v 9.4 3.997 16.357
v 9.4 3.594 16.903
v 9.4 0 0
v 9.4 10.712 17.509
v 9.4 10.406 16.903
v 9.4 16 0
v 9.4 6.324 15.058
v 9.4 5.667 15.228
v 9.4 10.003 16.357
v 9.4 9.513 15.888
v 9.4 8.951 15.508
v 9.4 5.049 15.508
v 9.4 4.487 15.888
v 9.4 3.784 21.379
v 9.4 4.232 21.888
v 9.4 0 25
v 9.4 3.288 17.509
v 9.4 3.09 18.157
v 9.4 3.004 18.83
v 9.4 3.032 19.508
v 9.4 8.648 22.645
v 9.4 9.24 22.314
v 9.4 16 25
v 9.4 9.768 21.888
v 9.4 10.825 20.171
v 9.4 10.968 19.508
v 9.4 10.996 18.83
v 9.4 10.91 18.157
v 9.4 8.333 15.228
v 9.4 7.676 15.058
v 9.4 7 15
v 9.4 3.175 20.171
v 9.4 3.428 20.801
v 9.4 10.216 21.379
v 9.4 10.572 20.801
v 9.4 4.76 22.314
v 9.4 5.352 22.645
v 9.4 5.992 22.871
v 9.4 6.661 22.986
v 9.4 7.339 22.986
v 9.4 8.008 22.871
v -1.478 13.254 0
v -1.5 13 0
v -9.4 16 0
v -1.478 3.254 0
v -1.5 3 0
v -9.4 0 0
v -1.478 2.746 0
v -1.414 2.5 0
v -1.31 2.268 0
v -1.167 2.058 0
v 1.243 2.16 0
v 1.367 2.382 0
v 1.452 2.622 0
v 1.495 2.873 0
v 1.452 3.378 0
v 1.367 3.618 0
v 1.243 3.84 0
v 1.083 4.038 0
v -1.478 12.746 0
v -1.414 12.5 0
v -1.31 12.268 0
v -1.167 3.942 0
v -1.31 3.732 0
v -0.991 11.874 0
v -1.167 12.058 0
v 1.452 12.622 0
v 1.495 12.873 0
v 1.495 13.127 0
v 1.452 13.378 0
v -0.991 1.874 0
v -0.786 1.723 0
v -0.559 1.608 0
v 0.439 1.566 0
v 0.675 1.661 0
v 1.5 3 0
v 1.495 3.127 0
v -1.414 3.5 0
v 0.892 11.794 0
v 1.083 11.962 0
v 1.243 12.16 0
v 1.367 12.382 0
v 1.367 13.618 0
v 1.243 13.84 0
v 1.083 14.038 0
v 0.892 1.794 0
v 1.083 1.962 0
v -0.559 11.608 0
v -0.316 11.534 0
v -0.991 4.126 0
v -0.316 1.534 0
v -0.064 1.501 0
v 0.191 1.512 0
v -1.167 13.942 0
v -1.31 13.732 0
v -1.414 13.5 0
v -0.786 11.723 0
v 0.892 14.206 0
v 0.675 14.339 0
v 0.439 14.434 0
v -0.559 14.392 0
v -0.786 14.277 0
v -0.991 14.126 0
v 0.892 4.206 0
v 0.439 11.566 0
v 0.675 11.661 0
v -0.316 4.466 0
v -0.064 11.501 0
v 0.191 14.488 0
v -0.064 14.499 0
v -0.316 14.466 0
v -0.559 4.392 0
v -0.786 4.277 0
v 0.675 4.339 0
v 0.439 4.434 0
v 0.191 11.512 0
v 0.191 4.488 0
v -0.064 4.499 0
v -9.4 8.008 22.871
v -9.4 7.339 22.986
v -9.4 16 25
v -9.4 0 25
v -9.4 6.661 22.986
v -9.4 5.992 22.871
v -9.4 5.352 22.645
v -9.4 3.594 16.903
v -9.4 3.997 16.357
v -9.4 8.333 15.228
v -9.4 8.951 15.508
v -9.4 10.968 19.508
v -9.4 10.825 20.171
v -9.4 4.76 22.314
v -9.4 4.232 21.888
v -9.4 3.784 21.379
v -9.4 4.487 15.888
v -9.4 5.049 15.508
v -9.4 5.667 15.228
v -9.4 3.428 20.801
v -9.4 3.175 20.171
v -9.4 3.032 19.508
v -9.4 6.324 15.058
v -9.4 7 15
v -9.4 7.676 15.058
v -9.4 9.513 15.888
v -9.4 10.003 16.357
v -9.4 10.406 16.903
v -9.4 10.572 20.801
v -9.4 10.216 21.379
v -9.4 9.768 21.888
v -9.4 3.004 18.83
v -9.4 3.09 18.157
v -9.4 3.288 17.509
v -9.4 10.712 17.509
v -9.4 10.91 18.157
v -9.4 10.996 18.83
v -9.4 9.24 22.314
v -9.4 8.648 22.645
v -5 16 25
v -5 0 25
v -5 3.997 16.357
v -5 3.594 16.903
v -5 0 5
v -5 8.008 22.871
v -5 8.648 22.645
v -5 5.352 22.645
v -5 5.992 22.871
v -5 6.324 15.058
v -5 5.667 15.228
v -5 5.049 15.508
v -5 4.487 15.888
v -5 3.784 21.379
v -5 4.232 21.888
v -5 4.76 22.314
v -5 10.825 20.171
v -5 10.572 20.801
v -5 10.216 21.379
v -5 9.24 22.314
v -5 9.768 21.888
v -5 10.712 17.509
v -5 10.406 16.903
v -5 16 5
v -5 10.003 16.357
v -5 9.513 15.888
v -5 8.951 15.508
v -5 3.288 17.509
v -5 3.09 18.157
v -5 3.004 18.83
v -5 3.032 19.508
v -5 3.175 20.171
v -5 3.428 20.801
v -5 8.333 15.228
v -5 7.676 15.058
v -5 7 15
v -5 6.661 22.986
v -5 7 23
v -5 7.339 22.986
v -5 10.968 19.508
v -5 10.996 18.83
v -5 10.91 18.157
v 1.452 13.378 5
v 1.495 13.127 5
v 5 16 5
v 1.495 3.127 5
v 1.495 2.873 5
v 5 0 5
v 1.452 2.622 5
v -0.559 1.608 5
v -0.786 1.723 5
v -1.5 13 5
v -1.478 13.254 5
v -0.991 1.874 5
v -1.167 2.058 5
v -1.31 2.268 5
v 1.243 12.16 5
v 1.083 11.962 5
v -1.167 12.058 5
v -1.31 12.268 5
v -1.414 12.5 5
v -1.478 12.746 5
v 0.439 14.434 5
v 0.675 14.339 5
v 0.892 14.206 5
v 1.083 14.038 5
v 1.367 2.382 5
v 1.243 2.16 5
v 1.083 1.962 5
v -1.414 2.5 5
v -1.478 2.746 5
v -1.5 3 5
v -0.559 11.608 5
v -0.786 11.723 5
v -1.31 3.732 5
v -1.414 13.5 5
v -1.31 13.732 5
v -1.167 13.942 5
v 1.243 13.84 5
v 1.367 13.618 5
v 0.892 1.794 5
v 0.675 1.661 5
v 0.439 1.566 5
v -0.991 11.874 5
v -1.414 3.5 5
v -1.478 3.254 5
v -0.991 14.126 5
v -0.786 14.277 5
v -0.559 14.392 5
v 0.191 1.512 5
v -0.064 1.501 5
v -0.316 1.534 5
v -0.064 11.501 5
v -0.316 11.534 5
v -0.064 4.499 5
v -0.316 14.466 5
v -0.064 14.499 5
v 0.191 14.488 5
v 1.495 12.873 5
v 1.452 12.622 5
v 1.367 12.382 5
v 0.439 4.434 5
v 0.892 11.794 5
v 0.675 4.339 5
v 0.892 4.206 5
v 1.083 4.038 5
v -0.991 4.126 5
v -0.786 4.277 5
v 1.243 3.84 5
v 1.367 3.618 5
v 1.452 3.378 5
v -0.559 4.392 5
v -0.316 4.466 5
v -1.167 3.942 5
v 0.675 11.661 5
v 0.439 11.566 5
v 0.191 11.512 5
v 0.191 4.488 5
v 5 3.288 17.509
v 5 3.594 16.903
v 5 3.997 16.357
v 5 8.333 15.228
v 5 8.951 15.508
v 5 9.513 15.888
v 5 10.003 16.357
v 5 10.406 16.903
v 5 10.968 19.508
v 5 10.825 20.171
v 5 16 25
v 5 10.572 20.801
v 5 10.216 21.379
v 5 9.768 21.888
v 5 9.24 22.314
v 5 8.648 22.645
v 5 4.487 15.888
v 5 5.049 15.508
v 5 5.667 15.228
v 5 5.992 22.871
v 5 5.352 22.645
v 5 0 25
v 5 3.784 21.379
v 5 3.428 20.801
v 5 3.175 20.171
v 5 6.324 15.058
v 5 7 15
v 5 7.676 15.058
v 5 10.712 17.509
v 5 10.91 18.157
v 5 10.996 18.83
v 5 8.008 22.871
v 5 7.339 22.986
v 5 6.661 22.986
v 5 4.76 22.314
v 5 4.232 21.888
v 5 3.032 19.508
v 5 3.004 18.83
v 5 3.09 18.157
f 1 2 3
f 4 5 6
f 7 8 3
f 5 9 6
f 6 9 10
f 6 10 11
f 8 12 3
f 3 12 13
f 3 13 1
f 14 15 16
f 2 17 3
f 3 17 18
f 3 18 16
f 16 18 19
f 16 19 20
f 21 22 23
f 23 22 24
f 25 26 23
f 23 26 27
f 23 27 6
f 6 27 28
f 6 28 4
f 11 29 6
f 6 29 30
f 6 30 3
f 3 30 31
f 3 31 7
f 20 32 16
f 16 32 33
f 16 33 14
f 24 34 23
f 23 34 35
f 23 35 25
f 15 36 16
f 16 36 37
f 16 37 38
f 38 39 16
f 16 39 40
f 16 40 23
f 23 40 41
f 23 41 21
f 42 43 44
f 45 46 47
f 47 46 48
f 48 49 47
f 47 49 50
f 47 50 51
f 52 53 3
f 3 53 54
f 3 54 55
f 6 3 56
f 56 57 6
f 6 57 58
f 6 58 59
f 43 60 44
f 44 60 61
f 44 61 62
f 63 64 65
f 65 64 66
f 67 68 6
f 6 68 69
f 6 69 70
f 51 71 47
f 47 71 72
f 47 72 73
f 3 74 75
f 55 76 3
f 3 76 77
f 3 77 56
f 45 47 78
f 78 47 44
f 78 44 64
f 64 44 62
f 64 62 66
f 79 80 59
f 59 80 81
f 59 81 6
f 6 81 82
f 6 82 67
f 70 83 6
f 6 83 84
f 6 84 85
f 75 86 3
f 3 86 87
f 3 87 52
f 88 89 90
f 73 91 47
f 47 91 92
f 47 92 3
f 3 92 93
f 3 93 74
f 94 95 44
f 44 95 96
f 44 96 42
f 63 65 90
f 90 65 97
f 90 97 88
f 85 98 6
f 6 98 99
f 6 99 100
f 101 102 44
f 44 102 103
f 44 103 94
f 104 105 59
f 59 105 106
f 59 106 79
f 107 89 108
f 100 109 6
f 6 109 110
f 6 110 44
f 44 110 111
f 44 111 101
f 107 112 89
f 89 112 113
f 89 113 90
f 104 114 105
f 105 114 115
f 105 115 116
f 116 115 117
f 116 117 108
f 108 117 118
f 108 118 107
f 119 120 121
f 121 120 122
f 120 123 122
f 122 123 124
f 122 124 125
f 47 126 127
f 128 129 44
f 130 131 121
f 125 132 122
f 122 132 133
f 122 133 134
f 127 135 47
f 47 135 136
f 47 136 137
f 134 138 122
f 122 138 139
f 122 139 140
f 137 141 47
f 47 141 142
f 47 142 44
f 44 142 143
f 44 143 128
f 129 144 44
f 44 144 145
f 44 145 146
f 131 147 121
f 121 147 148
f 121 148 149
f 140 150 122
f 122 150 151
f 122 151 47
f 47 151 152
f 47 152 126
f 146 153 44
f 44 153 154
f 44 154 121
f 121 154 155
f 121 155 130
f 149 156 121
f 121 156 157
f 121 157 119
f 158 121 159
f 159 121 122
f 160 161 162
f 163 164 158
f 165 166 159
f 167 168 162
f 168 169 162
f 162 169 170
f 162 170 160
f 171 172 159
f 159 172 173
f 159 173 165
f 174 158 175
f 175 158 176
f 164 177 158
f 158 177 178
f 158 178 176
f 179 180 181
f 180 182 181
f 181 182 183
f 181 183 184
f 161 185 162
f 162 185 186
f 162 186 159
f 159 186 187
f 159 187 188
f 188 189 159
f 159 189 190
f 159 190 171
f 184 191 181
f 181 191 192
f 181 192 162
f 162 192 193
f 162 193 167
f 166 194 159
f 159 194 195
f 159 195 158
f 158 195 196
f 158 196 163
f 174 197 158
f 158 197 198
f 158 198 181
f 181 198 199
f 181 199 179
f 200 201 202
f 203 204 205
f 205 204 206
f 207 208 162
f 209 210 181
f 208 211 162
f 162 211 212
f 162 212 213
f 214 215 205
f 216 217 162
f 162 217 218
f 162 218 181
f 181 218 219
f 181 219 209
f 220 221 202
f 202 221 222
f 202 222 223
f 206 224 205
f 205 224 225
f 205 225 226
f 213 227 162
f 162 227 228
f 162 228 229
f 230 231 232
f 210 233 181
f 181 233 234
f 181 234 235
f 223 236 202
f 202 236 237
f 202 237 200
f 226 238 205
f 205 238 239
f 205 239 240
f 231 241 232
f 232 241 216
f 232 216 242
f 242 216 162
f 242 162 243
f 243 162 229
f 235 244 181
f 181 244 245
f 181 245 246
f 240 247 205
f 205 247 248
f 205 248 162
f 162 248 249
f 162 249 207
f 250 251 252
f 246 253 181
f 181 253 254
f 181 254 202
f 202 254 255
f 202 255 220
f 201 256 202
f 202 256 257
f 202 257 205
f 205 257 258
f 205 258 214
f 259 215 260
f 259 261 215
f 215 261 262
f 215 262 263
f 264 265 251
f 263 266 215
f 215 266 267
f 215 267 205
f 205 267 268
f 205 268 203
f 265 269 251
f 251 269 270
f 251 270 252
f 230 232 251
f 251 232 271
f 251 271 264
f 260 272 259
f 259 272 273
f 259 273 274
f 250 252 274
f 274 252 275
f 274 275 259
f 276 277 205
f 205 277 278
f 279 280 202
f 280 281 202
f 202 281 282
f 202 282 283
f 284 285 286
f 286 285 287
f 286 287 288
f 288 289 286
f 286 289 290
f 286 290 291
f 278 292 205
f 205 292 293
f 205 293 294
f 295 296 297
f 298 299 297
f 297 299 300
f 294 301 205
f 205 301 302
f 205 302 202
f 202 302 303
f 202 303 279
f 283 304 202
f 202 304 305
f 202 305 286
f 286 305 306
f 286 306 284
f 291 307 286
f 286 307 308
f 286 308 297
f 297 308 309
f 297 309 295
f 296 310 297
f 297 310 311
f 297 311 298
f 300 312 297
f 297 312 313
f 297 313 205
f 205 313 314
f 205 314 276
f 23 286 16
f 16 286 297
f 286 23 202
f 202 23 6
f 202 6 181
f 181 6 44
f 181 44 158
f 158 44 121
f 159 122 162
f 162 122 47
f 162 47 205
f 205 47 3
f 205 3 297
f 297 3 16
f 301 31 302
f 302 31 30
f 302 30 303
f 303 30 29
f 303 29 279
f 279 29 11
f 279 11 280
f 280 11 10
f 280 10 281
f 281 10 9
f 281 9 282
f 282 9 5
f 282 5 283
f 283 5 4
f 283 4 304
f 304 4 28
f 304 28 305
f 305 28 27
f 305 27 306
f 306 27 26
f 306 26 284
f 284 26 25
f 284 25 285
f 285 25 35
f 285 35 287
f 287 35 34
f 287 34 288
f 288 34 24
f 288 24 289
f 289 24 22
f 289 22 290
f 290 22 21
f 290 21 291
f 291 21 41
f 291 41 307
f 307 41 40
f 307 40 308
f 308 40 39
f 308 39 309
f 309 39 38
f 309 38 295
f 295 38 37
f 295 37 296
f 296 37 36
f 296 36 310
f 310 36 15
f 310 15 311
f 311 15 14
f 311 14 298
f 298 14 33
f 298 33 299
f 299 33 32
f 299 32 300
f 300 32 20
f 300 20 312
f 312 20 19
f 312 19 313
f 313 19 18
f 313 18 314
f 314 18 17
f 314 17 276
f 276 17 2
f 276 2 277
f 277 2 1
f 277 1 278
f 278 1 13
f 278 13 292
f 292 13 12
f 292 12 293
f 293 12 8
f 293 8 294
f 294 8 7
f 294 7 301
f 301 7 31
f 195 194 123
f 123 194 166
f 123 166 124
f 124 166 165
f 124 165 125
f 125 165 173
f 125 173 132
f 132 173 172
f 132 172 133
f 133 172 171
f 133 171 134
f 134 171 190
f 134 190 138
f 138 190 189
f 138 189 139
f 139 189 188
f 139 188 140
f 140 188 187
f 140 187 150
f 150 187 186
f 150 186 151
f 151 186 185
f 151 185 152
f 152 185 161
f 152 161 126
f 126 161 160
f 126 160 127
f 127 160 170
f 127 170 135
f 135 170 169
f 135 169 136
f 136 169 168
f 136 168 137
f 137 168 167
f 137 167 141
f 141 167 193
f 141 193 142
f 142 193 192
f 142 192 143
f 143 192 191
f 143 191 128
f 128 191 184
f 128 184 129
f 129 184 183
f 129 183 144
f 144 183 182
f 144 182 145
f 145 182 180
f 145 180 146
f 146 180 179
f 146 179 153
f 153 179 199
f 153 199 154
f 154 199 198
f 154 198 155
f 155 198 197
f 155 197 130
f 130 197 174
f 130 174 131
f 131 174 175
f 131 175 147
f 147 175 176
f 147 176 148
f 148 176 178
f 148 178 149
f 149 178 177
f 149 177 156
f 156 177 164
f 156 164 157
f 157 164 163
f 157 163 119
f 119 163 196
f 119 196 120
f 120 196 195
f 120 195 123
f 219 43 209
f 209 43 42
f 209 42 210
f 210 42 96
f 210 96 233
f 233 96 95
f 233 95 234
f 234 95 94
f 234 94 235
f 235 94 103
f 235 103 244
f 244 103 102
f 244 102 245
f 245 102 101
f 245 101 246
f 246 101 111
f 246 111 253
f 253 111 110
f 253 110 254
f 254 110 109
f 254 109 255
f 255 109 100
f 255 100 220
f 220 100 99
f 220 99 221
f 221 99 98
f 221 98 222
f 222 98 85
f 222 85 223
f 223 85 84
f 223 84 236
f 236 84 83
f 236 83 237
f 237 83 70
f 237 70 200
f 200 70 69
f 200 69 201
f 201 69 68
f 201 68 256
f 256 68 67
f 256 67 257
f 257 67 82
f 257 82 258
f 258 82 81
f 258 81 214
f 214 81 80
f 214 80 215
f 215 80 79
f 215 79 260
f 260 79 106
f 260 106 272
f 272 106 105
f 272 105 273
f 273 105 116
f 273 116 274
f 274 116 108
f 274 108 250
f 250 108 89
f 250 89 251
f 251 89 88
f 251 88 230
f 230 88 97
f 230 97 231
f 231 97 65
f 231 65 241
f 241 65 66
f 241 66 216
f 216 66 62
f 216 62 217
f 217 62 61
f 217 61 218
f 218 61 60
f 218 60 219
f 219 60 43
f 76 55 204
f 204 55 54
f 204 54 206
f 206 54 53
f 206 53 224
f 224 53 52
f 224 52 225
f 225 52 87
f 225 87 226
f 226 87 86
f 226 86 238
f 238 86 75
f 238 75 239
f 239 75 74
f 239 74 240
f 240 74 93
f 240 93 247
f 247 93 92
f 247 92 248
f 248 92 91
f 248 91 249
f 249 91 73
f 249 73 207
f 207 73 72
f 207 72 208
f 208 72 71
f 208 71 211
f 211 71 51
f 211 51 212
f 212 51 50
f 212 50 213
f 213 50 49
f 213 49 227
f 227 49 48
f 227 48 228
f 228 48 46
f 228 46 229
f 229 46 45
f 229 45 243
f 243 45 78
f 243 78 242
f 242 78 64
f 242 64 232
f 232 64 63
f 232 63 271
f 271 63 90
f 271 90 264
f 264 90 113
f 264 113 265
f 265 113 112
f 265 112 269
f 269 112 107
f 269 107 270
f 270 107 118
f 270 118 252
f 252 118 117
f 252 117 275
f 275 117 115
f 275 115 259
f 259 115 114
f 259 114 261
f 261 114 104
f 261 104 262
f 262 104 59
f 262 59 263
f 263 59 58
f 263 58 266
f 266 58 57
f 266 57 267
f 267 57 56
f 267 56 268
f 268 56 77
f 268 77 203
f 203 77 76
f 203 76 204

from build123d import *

# Parameters (mm, degrees)
BOSS_EXTRUDE1_DEPTH = 16
SKETCH2_R           = 4
CUT_EXTRUDE1_DEPTH  = 19.8
SKETCH3_R           = 1.5
CUT_EXTRUDE2_DEPTH  = 26


with BuildPart() as part:
    # Sketch1 → Boss-Extrude1 (new body)
    with BuildSketch(Plane(origin=(0, 0, 0), x_dir=(1, 0, 0), z_dir=(0, 1, 0))):
        Polygon((-9.4, 0), (9.4, 0), (9.4, -25), (5, -25), (5, -5), (-5, -5), (-5, -25), (-9.4, -25), align=None)
    extrude(amount=BOSS_EXTRUDE1_DEPTH)

    # Sketch2 → Cut-Extrude1 (cut, through all)
    with BuildSketch(Plane(origin=(9.4, 0, 0), x_dir=(0, 0, -1), z_dir=(1, 0, 0))):
        with Locations((-19, 7)):
            Circle(SKETCH2_R)
    extrude(amount=-CUT_EXTRUDE1_DEPTH, mode=Mode.SUBTRACT)

    # Sketch3 → Cut-Extrude2 (cut, through all)
    with BuildSketch(Plane(origin=(0, 0, 0), x_dir=(-1, 0, 0), z_dir=(0, 0, -1))):
        with Locations((0, 13)):
            Circle(SKETCH3_R)
        with Locations((0, 3)):
            Circle(SKETCH3_R)
    extrude(amount=-CUT_EXTRUDE2_DEPTH, mode=Mode.SUBTRACT)


solid = part.part
